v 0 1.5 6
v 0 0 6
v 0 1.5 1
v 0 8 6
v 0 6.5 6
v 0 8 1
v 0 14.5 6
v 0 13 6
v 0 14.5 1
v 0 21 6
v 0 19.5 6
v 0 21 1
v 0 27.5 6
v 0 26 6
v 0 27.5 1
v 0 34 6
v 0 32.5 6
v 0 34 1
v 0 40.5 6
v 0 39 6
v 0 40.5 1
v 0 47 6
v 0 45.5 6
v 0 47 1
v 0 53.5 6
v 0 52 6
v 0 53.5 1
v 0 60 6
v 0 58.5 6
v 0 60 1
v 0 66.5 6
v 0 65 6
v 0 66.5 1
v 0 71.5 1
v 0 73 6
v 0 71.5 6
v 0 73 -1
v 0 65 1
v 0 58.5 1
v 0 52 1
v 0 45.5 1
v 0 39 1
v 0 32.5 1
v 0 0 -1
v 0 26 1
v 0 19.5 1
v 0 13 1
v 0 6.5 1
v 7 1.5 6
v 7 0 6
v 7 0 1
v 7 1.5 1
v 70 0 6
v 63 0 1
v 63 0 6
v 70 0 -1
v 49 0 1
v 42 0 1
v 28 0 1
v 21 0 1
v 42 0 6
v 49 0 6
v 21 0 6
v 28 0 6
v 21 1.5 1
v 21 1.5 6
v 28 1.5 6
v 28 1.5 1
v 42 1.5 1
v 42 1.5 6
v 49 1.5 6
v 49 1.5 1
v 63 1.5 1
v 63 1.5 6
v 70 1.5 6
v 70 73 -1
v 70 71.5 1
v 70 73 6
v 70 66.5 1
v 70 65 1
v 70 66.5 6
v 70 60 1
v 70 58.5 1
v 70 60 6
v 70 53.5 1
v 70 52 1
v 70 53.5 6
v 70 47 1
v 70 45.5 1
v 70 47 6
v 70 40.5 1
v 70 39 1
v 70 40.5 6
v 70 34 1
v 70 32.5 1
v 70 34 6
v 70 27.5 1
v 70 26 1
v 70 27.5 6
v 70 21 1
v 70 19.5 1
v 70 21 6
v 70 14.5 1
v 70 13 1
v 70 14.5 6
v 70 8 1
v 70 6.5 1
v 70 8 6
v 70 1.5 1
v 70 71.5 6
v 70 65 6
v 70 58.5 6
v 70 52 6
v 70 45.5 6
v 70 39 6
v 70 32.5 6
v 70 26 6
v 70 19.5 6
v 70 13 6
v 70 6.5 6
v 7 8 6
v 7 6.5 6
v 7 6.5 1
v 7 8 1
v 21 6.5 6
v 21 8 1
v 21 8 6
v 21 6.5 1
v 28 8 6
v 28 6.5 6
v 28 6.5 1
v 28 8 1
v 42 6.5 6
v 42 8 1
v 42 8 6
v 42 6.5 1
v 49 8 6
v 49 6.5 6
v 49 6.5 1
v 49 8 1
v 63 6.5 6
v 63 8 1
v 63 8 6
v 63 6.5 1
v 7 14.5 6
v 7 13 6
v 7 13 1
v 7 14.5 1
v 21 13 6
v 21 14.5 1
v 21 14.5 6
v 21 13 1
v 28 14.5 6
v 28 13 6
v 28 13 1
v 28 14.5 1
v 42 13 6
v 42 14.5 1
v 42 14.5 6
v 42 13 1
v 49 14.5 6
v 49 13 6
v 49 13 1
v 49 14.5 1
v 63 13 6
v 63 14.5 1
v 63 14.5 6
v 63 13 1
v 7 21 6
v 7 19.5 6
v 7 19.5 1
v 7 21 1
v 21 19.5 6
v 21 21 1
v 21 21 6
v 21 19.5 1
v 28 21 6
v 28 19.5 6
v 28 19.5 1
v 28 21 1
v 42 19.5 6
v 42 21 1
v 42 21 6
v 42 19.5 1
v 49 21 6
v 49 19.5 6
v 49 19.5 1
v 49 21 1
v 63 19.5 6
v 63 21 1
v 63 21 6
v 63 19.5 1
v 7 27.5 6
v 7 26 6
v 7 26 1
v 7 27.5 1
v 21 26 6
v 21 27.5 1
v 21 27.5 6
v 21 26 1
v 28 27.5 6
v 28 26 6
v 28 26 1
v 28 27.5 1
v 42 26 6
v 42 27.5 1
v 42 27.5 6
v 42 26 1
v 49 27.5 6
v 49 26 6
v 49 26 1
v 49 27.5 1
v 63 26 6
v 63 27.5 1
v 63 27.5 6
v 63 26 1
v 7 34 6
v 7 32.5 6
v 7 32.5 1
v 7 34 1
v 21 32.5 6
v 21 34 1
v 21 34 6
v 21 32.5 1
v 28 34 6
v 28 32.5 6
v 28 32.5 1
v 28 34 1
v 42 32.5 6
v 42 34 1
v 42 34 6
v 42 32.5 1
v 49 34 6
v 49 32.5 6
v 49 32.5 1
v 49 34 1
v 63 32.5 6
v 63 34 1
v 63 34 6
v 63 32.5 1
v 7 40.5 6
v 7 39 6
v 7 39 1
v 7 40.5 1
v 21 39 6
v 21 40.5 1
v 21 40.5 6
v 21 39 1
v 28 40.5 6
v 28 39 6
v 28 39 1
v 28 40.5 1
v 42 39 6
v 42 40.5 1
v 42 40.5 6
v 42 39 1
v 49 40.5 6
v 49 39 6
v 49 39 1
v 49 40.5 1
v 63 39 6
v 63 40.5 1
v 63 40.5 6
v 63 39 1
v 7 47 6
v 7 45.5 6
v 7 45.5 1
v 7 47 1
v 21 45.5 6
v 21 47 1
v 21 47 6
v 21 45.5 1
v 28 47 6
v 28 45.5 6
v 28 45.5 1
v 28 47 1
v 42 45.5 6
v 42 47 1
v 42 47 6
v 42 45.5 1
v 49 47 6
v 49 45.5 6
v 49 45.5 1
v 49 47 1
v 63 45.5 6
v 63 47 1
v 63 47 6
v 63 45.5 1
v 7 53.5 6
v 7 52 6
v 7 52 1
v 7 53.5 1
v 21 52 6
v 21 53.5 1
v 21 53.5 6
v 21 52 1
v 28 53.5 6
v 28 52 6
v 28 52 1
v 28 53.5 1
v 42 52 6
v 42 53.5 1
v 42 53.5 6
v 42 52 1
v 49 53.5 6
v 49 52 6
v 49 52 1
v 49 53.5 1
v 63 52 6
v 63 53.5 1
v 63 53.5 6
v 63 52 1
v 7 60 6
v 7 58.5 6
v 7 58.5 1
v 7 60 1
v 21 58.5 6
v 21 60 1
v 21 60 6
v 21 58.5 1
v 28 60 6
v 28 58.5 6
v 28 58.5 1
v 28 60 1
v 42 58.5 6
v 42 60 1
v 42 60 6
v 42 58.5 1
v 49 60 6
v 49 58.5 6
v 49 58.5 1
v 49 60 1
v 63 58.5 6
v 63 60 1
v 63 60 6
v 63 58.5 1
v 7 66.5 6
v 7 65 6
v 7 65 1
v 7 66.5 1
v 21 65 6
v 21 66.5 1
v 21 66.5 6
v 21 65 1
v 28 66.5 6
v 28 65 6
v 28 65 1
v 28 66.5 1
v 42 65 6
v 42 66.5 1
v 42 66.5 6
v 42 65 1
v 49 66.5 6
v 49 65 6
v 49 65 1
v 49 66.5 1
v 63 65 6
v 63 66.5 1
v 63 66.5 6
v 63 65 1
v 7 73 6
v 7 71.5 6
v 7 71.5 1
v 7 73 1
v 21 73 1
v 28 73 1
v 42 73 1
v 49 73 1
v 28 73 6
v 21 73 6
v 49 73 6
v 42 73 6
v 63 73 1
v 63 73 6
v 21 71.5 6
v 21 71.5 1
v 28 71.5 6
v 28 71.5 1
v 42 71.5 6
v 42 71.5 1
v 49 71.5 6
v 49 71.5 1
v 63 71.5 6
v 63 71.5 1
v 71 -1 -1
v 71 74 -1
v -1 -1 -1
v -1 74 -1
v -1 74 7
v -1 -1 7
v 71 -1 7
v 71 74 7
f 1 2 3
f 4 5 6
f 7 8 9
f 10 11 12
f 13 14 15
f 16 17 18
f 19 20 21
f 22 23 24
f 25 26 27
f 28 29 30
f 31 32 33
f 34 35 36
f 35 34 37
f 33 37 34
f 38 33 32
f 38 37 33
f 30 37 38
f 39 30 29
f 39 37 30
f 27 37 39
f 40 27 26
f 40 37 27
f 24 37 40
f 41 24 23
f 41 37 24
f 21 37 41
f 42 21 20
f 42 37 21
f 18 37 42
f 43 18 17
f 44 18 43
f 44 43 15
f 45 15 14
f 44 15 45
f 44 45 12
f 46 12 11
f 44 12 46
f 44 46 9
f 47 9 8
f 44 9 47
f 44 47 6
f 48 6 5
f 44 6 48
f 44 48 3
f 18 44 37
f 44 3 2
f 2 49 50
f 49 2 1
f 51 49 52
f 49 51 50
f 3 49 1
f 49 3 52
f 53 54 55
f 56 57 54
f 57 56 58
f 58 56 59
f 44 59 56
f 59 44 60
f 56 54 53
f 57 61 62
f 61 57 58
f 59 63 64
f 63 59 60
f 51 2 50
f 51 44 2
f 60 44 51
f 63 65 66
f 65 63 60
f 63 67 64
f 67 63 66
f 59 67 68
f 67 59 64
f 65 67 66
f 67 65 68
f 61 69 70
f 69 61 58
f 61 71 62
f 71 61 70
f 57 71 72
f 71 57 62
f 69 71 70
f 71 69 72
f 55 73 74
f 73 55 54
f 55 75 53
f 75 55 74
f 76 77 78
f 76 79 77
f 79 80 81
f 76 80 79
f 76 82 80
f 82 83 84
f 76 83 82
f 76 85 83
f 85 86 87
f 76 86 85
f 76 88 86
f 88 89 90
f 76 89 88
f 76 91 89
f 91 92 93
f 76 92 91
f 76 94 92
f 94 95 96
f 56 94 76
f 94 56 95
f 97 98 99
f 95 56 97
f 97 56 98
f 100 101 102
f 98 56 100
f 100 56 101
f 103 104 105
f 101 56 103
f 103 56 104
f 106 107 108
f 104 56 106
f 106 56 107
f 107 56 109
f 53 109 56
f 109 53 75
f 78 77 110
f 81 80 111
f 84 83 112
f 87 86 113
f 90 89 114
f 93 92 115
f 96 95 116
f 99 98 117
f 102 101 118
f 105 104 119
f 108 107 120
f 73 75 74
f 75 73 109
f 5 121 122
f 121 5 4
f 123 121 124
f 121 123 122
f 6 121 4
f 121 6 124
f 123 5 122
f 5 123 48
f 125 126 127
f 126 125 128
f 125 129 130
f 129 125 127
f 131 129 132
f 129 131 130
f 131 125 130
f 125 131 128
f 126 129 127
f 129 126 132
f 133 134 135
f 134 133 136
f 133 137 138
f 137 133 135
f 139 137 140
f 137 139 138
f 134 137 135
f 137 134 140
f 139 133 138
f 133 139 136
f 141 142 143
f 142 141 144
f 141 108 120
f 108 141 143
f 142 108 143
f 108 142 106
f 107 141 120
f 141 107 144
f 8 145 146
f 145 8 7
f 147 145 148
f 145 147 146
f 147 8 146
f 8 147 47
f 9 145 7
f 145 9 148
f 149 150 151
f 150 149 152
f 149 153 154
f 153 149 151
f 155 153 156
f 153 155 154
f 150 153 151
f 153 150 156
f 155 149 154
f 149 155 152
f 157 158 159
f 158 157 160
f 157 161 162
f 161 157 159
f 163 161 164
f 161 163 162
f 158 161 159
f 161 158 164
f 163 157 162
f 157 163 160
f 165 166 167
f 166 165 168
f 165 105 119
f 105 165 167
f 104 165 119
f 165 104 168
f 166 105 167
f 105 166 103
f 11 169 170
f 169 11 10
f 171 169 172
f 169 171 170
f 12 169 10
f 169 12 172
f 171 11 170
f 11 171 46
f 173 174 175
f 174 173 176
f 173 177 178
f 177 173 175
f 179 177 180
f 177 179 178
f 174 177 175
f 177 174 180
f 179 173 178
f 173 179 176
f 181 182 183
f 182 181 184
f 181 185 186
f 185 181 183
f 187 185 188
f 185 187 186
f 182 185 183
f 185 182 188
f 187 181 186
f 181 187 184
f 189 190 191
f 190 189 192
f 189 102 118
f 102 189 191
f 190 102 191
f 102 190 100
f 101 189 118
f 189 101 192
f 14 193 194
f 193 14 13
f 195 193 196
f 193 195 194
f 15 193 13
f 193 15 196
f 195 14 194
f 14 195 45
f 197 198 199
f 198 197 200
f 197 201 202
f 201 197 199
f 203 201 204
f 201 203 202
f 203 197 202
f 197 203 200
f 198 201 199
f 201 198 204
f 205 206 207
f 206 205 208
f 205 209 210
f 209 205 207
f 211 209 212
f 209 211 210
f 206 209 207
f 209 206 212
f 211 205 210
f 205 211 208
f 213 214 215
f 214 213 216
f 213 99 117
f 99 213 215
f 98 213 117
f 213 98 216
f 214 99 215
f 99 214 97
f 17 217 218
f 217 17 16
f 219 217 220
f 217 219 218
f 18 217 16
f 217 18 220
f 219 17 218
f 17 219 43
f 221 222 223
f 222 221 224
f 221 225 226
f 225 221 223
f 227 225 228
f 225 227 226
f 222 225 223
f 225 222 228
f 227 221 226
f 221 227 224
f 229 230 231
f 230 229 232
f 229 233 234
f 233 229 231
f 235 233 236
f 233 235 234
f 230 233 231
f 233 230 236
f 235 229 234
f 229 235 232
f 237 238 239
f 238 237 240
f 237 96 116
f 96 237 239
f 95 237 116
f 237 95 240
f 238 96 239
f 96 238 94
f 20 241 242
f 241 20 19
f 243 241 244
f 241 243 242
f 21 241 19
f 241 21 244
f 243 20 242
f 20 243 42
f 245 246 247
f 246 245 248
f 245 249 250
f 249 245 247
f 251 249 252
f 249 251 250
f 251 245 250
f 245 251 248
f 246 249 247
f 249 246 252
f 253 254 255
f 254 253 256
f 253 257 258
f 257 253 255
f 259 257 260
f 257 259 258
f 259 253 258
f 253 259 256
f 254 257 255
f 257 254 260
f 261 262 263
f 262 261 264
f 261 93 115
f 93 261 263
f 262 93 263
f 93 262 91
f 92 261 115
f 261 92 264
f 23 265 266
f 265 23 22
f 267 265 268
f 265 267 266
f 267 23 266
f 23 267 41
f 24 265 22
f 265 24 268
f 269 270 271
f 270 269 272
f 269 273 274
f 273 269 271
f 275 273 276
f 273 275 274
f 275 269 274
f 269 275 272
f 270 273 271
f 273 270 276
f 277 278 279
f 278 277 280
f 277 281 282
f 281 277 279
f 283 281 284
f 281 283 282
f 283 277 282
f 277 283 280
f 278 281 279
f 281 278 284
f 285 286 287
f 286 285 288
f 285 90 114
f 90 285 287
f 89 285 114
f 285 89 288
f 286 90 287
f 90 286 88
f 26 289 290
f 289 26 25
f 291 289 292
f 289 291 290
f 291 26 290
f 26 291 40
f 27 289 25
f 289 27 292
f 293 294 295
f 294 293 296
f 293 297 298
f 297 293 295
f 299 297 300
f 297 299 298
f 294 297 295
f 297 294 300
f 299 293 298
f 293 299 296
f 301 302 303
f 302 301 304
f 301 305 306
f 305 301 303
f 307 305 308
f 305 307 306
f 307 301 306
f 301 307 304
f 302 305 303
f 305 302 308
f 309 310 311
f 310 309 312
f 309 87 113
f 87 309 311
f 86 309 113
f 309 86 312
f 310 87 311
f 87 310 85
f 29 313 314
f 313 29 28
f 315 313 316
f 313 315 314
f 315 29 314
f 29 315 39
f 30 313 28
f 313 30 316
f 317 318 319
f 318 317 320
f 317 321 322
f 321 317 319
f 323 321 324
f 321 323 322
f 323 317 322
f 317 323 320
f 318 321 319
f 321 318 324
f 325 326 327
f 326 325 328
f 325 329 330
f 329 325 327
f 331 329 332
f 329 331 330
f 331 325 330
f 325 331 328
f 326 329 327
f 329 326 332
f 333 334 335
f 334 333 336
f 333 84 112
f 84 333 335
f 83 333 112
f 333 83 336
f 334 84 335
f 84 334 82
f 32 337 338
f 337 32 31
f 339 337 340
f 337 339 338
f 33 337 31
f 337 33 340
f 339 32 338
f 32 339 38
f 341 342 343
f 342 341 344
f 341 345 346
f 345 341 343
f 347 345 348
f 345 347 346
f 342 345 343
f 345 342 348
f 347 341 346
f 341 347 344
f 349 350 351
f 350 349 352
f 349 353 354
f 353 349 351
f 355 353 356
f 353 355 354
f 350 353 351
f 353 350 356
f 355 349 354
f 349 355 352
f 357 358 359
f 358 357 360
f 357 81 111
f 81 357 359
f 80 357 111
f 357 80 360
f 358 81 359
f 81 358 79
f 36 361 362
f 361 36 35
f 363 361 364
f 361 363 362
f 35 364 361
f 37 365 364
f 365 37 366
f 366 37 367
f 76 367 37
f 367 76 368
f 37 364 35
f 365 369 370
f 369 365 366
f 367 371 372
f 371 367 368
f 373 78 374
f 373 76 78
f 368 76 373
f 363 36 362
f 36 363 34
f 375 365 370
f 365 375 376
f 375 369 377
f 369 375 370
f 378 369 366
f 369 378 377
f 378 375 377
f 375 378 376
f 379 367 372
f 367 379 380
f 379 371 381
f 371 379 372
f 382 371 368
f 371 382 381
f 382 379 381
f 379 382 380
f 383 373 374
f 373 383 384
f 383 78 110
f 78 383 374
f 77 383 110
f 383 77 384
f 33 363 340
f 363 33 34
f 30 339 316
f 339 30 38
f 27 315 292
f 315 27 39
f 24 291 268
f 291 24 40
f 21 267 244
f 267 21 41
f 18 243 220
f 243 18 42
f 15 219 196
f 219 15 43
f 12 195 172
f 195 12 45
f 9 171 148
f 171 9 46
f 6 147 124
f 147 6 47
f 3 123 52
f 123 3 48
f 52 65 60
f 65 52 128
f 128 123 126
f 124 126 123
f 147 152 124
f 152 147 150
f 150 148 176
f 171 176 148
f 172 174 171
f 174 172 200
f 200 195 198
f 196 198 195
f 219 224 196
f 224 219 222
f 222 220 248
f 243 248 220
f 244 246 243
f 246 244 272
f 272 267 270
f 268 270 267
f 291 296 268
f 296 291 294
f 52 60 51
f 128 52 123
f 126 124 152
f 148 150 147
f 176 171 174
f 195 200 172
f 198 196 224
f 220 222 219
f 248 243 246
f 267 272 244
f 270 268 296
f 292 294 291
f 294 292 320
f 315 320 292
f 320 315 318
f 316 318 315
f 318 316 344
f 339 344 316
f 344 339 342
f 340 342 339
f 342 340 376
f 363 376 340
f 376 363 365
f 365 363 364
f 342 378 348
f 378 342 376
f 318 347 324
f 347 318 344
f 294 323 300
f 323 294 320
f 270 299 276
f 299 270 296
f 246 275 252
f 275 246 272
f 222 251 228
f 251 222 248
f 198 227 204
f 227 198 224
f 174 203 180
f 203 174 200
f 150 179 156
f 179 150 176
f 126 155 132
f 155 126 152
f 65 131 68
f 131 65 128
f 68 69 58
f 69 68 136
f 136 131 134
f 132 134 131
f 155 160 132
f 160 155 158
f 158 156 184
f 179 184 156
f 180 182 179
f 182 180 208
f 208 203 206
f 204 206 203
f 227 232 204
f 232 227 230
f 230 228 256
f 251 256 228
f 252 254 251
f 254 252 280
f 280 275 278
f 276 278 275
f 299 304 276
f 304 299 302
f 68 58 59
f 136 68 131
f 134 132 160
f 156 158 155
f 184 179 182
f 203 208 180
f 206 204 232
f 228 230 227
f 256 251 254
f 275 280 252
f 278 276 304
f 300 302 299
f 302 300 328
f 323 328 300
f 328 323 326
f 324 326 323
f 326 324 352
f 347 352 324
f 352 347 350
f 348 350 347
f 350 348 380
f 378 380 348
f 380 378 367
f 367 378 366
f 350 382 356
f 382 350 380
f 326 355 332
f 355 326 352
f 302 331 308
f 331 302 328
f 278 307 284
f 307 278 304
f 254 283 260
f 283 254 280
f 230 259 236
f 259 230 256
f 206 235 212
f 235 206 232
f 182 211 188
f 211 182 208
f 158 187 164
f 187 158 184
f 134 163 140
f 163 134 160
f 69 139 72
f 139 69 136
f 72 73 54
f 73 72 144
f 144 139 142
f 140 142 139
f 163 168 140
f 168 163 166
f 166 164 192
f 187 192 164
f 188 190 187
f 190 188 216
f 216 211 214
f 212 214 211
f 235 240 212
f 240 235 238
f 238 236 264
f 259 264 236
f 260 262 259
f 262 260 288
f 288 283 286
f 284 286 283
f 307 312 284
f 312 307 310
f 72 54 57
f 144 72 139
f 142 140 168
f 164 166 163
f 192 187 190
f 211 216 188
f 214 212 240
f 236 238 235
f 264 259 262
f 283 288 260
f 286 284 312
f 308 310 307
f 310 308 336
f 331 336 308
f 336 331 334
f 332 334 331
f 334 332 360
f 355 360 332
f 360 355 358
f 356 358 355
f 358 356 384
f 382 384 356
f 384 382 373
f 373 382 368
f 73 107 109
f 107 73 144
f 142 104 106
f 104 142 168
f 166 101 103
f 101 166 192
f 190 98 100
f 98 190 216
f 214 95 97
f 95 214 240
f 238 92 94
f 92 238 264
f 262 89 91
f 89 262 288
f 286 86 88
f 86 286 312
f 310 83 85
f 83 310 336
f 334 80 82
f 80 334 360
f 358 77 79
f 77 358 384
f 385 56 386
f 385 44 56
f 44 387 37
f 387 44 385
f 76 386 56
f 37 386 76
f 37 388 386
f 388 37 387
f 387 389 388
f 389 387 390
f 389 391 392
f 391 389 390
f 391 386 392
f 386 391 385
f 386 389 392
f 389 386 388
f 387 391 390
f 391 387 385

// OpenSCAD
difference(){
     translate([-1,-1,-1])cube([72,75,8]);
    difference(){
        union(){
             translate([0,0,-1])cube([70,73,2]);
            for (i = [0:11]) {
                for (j = [0:3]) {
                    translate([j*(21),i*6.5,0])cube([7,1.5,6]);
                }
            }
        }
    }
}
        
